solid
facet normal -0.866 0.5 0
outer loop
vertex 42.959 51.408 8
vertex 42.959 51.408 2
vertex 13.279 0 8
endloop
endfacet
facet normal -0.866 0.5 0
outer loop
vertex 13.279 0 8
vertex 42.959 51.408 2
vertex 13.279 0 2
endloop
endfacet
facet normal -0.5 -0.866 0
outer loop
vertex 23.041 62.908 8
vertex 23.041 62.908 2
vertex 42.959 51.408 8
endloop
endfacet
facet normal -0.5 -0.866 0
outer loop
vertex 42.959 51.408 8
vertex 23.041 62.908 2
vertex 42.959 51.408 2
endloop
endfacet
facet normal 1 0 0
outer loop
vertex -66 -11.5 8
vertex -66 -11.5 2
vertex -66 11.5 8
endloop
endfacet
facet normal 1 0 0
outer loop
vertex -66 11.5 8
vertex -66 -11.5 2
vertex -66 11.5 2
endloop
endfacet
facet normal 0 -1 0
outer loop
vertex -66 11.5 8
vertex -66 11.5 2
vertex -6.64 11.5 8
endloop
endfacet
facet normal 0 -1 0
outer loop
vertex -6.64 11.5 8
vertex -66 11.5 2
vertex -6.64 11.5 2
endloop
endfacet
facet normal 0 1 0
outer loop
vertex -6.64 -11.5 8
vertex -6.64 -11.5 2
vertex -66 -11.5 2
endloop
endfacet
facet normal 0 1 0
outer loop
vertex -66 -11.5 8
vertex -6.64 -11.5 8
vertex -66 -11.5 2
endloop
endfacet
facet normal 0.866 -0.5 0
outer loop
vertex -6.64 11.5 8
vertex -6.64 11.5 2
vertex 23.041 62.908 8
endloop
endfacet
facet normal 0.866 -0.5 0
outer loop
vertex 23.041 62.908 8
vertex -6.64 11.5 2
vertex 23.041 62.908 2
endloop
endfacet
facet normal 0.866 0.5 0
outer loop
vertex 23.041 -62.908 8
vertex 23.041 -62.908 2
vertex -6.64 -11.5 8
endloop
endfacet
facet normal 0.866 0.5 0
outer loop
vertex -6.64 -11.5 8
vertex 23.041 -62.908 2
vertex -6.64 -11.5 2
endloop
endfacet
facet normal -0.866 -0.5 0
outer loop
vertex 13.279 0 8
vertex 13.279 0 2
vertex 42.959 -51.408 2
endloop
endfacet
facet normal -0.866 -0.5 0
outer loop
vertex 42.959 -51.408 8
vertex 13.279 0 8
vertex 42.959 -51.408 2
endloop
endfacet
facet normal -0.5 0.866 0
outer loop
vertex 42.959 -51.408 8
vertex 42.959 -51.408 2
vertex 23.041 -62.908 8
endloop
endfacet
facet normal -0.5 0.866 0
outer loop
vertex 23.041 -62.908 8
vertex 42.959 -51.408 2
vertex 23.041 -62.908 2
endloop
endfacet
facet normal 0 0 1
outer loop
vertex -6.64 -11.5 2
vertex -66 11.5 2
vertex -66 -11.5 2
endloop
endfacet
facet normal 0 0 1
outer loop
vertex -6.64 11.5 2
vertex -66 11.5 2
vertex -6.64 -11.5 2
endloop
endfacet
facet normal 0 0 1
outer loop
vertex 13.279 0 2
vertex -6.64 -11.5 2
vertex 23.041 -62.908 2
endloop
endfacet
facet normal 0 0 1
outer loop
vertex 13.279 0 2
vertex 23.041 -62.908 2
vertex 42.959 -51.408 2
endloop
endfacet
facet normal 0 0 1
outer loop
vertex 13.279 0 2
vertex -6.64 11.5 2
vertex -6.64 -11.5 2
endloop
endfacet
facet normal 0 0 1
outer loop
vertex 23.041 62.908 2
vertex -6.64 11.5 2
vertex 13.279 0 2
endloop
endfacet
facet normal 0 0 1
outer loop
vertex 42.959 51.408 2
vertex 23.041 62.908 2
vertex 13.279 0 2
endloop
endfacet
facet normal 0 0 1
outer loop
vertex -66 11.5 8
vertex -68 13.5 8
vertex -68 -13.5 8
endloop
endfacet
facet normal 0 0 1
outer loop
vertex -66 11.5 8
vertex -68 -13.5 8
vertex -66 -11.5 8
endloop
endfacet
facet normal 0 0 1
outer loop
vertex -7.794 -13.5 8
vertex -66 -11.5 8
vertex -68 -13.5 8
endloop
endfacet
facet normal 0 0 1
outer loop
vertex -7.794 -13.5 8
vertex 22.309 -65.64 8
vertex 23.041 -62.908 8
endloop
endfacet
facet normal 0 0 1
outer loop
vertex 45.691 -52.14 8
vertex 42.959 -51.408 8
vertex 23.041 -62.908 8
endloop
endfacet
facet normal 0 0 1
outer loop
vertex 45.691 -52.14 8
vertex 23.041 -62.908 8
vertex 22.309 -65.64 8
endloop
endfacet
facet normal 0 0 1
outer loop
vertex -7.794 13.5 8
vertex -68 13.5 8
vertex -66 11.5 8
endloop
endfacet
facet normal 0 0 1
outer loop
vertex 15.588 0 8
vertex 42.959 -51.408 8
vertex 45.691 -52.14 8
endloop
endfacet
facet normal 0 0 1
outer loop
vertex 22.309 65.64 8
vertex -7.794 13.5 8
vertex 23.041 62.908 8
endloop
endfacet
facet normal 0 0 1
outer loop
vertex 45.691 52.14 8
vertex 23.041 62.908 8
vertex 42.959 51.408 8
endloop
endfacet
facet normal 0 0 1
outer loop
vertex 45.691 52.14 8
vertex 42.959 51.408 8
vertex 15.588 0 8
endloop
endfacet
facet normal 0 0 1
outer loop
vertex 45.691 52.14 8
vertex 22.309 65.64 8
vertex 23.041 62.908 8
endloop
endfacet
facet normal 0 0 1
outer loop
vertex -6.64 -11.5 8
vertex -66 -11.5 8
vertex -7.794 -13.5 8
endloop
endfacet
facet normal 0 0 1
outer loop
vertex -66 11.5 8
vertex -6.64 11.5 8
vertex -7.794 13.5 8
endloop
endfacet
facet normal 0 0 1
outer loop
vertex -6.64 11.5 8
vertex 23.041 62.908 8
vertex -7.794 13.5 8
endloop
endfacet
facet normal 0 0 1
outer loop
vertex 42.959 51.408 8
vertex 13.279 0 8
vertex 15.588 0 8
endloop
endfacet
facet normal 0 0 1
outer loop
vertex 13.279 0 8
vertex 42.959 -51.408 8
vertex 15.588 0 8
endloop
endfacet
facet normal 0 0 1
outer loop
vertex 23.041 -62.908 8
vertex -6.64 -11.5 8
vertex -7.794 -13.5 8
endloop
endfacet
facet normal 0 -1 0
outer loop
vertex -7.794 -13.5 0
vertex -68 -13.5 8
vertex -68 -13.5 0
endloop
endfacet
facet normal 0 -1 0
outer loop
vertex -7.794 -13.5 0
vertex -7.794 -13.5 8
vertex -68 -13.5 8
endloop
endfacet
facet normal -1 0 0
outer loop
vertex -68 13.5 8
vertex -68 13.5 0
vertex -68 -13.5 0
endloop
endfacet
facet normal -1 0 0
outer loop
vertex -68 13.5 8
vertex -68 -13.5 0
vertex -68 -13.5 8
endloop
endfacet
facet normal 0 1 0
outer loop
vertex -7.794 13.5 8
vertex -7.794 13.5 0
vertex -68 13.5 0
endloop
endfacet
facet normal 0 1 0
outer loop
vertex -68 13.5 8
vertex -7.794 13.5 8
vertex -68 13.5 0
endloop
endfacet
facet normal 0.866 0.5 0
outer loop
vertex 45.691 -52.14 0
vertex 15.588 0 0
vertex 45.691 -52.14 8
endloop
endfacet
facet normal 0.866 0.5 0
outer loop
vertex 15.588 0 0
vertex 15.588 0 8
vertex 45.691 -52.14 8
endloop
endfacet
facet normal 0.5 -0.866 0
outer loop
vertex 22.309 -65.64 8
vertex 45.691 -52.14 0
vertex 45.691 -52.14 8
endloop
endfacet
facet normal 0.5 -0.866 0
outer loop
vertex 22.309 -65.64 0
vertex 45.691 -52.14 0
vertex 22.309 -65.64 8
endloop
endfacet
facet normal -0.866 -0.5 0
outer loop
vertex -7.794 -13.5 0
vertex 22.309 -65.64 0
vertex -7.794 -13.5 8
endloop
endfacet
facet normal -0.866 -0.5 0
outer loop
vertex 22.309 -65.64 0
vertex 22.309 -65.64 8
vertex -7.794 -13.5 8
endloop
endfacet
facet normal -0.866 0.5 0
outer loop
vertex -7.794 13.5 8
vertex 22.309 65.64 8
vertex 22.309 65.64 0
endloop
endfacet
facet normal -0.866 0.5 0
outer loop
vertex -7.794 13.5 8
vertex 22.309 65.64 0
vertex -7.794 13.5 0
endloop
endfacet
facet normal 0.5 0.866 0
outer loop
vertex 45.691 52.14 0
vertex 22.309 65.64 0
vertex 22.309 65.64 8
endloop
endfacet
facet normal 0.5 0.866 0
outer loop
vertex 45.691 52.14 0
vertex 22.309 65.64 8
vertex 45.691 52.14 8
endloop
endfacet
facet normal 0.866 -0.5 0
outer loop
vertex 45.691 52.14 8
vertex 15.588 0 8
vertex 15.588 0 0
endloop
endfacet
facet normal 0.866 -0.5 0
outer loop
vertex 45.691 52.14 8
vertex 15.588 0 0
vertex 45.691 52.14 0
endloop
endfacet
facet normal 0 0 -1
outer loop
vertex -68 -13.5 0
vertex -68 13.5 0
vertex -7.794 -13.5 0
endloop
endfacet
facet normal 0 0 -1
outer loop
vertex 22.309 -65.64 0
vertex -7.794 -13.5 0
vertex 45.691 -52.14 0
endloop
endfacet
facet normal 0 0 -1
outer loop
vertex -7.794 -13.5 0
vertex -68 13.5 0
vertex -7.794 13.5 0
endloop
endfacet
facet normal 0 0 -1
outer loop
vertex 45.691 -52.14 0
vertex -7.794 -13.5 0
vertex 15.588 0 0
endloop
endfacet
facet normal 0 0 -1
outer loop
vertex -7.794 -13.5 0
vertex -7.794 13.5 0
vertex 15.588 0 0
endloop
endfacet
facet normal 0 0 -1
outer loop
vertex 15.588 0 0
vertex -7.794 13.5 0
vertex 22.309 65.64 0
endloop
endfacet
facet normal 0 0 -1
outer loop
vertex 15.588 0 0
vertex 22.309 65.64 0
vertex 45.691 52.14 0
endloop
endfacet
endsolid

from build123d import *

# Parameters (mm, degrees)
PAD002_DEPTH = 8
PAD_DEPTH    = 2
ARRAY_COUNT  = 3


with BuildPart() as pad002:
    # Sketch002 → Pad002 (new body)
    with BuildSketch(Plane.XY):
        Polygon((-6.6395280957, 11.5), (-7.7942286341, 13.5), (-68, 13.5), (-68, -13.5), (-7.7942286341, -13.5), (-6.6395280957, -11.5), (-66, -11.5), (-66, 11.5), align=None)
    extrude(amount=PAD002_DEPTH)


with BuildPart() as array:
    # Sketch → Pad (new body)
    with BuildSketch(Plane.XY):
        Polygon((0, 0), (-7.7942286341, 13.5), (-68, 13.5), (-68, -13.5), (-7.7942286341, -13.5), align=None)
    extrude(amount=PAD_DEPTH)

    # Fusion: union Pad002
    add(pad002.part)

    # Array: Array ×3 about axis
    array_axis = Axis((0, 0, 0), (0, 0, 1))


with BuildPart() as array_1:
    add(array.part)
    for i in range(1, ARRAY_COUNT):
        add(array.part.rotate(array_axis, i * 360 / ARRAY_COUNT))


solid = array_1.part
